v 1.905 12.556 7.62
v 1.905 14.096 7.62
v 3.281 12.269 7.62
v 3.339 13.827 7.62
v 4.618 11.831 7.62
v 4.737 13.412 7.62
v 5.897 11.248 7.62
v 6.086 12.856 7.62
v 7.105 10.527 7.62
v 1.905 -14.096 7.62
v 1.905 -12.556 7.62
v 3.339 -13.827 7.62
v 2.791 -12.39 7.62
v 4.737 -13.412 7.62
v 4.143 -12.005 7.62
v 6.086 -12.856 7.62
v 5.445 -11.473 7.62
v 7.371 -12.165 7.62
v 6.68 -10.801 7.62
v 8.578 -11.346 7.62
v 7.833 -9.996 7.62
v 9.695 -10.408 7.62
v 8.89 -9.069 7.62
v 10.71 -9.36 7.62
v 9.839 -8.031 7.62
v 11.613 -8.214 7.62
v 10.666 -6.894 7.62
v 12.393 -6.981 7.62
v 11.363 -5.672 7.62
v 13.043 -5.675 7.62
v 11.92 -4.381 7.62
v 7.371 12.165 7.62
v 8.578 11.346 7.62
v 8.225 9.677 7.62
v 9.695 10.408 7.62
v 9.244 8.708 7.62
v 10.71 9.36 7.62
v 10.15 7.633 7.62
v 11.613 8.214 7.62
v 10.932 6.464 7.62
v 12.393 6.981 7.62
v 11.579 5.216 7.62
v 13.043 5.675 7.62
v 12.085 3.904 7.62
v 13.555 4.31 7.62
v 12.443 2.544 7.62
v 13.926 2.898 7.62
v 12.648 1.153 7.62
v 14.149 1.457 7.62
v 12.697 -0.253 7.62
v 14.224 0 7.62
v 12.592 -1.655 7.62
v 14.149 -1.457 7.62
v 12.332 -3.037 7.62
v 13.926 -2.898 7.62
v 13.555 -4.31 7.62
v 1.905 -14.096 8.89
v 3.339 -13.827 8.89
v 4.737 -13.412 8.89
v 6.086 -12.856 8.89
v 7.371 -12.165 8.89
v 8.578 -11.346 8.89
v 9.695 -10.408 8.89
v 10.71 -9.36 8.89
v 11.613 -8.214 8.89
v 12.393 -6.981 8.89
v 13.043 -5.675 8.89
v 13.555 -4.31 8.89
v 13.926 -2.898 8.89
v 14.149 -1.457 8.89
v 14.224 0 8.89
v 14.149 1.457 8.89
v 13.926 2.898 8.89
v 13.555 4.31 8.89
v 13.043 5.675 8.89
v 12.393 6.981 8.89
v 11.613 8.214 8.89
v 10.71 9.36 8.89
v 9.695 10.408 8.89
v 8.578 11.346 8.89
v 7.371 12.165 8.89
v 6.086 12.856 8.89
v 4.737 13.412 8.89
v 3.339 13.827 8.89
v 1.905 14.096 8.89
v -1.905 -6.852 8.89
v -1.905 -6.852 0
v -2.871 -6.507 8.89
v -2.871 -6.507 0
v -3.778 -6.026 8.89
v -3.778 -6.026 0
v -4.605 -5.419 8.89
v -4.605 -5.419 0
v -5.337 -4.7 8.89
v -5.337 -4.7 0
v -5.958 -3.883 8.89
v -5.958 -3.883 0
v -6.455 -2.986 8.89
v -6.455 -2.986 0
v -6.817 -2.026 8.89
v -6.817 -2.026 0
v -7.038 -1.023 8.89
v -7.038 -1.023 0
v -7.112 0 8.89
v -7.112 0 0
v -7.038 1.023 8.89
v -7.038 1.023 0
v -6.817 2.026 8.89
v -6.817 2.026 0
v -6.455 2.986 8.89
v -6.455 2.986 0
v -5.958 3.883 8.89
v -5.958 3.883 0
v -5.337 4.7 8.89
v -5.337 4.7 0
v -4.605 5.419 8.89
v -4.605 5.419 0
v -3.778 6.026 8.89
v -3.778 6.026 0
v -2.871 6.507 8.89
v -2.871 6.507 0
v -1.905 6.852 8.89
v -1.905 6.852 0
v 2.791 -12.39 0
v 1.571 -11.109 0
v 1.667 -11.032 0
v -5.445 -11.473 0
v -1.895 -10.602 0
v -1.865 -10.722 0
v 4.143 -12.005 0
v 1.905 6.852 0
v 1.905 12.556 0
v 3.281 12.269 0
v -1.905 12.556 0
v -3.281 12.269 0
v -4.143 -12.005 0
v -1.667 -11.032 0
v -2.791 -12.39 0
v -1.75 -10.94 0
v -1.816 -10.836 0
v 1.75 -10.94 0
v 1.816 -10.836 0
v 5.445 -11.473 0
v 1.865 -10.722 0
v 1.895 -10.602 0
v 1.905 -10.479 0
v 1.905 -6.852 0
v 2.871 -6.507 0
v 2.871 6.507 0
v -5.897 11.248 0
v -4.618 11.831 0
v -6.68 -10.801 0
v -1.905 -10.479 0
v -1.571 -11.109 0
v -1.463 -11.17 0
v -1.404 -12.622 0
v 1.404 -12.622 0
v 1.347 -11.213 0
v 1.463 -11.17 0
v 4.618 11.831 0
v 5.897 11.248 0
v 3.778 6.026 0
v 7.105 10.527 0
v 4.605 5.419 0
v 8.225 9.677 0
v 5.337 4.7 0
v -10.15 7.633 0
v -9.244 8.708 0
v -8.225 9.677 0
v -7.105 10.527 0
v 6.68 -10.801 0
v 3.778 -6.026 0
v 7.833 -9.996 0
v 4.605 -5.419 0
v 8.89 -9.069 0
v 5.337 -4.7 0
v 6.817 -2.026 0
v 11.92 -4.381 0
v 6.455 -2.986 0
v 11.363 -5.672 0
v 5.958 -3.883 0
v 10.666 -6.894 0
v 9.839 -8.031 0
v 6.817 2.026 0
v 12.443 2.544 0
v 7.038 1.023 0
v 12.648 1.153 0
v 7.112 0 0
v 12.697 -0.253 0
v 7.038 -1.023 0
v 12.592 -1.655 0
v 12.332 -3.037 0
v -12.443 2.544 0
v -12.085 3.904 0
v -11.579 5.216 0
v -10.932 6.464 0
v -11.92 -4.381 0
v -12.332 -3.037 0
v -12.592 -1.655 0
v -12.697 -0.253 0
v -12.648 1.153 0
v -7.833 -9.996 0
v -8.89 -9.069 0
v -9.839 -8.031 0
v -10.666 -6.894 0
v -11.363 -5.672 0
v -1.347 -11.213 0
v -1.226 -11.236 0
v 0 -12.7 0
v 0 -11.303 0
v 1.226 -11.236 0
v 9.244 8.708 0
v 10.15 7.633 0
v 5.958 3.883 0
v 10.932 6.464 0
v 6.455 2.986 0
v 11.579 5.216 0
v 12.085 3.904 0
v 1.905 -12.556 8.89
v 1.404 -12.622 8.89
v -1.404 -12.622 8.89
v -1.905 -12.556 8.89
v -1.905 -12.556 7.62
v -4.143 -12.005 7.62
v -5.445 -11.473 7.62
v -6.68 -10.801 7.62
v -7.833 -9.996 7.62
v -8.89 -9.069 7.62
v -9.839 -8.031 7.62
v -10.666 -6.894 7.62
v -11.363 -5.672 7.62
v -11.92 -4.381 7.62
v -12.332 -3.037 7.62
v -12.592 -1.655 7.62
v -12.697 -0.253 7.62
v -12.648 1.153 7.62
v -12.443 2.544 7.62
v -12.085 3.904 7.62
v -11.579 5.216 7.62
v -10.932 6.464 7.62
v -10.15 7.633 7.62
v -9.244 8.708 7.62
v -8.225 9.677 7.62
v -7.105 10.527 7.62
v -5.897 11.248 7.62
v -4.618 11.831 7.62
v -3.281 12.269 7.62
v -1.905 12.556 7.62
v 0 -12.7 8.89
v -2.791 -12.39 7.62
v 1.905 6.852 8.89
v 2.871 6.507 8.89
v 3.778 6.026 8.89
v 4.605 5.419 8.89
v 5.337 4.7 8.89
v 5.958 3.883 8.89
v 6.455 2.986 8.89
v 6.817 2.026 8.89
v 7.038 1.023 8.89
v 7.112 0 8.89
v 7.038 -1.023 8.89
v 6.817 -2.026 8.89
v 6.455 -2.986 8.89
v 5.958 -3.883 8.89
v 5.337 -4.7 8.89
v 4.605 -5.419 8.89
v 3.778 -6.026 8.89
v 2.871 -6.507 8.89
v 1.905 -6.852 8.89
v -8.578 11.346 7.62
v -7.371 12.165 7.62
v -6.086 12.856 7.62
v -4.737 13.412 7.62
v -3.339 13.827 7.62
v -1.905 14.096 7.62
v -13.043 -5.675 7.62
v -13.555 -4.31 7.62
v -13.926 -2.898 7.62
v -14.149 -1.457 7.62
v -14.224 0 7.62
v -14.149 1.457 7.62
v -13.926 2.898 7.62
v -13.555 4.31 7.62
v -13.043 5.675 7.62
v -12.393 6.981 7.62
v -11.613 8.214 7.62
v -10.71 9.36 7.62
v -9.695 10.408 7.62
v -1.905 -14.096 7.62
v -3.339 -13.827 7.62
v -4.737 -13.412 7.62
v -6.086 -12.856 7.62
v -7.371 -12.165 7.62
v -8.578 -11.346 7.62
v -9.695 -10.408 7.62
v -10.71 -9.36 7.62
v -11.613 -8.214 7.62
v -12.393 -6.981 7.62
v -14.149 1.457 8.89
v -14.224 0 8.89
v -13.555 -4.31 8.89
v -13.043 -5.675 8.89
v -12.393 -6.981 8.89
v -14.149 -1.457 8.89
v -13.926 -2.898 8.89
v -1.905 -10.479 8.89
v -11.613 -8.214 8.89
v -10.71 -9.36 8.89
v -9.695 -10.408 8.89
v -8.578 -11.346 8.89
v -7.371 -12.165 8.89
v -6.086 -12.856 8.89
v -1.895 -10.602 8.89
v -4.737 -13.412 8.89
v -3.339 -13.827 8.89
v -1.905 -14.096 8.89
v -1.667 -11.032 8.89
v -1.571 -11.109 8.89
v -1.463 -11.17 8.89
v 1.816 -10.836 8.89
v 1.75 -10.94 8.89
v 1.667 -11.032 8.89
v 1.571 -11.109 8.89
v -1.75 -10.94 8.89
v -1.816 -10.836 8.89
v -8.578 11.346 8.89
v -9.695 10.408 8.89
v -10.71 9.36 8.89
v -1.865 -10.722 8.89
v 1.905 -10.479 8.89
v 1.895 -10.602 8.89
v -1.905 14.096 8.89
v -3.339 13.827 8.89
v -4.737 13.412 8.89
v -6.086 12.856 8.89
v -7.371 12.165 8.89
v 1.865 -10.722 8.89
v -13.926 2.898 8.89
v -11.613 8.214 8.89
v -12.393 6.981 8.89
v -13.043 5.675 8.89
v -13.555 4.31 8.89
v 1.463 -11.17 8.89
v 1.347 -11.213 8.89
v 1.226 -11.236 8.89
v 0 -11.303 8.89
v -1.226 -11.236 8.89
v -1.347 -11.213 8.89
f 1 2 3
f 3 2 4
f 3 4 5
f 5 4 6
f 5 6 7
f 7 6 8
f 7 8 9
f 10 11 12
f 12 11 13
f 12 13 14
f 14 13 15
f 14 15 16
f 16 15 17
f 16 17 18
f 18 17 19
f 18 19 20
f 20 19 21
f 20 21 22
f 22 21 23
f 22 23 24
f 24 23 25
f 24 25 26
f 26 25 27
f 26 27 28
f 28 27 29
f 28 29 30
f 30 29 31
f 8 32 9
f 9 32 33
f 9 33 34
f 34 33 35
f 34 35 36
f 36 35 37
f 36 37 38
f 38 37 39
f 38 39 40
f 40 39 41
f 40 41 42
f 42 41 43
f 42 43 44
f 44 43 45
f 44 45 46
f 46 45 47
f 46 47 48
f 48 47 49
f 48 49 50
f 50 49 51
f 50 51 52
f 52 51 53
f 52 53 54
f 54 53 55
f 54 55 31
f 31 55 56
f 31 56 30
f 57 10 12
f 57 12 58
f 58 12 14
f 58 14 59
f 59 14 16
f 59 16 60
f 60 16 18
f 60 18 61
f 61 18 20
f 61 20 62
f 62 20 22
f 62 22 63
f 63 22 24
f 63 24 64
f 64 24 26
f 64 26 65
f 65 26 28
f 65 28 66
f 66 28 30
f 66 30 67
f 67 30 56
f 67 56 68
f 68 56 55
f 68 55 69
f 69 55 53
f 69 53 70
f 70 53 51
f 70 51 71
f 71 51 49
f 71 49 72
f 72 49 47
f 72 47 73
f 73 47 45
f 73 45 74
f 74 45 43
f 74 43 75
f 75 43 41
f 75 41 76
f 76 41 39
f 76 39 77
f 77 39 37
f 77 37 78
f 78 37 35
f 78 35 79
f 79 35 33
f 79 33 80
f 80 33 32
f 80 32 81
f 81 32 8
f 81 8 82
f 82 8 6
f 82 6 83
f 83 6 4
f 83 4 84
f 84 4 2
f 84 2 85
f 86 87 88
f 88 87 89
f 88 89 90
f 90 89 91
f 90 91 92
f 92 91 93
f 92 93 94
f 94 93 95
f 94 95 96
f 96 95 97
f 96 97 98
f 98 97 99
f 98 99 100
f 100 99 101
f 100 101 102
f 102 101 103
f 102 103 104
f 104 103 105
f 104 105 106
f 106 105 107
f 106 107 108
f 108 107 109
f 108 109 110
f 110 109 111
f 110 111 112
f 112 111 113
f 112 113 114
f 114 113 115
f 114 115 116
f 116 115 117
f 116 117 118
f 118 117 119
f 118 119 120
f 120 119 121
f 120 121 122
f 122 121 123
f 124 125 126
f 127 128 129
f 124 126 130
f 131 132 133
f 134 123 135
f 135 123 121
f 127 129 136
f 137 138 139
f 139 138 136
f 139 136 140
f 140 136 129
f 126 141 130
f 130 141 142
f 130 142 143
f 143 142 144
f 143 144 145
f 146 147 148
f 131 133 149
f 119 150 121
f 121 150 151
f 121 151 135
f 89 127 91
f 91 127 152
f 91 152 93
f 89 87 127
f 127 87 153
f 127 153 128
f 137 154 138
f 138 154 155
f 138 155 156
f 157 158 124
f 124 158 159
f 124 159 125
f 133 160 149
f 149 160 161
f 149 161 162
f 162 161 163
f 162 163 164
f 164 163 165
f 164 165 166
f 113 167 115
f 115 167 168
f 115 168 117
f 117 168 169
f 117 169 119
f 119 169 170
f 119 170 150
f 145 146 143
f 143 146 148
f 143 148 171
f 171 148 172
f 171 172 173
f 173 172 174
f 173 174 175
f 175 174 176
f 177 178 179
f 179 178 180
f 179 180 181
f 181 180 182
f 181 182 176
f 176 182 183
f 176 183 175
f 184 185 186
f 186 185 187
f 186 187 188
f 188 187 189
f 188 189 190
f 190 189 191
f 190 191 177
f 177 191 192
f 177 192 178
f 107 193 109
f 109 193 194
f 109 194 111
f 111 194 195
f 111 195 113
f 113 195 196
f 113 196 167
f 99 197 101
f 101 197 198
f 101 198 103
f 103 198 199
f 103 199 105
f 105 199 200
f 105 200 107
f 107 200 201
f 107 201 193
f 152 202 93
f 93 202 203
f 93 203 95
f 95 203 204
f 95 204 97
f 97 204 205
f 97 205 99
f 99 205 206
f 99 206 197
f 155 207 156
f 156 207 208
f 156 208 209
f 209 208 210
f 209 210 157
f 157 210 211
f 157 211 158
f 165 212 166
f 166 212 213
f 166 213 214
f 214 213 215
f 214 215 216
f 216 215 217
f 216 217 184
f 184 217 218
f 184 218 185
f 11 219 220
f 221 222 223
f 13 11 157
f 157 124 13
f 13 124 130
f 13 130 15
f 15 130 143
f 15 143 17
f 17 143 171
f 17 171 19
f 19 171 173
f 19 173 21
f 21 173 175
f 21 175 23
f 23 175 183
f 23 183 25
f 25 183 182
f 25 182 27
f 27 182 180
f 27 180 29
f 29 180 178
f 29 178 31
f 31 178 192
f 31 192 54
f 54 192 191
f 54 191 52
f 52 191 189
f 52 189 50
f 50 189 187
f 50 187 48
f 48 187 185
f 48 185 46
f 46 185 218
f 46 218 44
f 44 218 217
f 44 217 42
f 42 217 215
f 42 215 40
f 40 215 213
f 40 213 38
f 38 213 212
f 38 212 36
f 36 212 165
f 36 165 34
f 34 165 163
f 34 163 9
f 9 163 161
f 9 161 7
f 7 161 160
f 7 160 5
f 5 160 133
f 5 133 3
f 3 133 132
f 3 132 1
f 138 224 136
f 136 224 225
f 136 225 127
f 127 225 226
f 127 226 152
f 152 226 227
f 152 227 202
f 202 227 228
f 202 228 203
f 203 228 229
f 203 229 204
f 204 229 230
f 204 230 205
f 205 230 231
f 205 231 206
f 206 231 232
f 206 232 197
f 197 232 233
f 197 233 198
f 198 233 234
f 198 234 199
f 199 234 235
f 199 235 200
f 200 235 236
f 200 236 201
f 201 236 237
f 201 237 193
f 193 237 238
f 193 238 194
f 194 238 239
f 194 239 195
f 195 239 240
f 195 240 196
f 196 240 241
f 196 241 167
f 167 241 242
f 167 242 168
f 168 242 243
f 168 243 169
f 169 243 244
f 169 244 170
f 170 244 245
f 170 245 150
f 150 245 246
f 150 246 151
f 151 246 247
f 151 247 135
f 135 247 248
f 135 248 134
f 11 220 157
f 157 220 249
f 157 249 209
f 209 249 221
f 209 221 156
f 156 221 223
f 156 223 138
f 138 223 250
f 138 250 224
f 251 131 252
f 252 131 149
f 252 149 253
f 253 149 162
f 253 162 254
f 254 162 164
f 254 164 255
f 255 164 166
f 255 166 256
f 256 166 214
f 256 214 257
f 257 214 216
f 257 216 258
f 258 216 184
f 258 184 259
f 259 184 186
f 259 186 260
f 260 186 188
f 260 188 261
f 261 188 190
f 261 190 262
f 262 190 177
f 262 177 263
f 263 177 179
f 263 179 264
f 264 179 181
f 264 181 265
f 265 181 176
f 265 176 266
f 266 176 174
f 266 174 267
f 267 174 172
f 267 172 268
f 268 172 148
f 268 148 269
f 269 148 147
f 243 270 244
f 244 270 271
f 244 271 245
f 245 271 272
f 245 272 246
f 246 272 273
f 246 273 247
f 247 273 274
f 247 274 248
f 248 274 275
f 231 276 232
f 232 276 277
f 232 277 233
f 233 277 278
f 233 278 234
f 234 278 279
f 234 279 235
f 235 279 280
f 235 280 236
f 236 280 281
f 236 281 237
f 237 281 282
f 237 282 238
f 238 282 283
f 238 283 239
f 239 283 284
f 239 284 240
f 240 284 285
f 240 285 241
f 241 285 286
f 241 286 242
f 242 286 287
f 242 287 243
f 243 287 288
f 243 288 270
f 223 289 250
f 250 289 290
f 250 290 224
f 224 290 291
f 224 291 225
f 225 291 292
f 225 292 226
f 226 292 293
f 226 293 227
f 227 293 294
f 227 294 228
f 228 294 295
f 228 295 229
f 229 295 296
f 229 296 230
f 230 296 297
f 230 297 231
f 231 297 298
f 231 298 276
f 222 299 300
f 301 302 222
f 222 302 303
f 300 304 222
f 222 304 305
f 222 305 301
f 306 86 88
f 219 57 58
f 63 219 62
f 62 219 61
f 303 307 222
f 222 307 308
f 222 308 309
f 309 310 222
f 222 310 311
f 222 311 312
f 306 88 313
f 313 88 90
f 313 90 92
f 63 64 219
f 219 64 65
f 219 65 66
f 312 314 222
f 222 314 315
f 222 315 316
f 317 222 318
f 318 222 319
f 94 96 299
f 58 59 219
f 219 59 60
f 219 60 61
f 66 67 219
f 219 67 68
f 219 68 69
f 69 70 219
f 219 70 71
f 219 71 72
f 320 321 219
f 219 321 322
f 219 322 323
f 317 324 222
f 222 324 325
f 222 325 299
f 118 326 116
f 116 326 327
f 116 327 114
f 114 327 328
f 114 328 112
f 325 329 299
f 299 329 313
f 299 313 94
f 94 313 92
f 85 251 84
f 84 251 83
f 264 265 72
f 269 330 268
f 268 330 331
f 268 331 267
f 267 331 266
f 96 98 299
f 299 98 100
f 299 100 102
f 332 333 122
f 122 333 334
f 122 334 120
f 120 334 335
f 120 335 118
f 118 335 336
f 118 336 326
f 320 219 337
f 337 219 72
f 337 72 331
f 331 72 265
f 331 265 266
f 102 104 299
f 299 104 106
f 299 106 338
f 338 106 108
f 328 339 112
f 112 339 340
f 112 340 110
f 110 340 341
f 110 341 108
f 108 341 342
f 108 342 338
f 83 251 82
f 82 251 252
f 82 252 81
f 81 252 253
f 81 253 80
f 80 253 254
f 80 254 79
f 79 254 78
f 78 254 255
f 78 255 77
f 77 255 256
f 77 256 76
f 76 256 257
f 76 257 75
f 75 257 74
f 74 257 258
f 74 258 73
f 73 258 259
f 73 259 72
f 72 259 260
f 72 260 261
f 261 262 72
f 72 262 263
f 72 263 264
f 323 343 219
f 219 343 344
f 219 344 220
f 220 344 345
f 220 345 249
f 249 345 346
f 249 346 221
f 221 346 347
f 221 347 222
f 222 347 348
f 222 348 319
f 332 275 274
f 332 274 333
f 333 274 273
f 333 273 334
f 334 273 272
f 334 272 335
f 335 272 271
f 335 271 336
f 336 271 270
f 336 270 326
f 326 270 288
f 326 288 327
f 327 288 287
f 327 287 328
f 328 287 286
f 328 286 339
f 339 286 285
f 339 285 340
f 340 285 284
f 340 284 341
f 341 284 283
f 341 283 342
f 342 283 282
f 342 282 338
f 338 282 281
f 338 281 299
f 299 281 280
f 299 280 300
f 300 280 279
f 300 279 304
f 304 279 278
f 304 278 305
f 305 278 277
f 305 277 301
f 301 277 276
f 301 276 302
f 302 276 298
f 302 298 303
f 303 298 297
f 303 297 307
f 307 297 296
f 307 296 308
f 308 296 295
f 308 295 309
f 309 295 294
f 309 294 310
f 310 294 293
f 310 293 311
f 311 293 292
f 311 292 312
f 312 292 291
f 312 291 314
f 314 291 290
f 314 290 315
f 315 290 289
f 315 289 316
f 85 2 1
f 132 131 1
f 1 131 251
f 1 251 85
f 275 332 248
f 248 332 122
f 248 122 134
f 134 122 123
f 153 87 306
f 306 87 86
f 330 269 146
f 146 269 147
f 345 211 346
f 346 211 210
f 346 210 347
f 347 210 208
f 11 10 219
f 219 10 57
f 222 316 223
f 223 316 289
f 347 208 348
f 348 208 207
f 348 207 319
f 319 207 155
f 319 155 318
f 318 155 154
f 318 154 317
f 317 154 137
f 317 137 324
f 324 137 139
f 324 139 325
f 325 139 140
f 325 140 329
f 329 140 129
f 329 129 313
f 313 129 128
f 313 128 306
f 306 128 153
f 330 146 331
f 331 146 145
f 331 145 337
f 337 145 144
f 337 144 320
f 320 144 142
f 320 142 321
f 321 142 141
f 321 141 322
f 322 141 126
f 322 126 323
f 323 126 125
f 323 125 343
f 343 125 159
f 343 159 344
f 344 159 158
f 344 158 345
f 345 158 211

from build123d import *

# Parameters (mm, degrees)
SKETCH1_R           = 12.7
SKETCH1_R_2         = 7.112
BOSS_EXTRUDE1_DEPTH = 7.62
SKETCH2_R           = 14.224
SKETCH2_R_2         = 7.112
BOSS_EXTRUDE2_DEPTH = 1.27
CUT_EXTRUDE1_DEPTH  = 9.89
CUT_EXTRUDE2_DEPTH  = 2.27
FILLET1_R           = 0.762


with BuildPart() as part:
    # Sketch1 → Boss-Extrude1 (new body)
    with BuildSketch(Plane.XY):
        Circle(SKETCH1_R)
        Circle(SKETCH1_R_2, mode=Mode.SUBTRACT)
    extrude(amount=BOSS_EXTRUDE1_DEPTH)

    # Sketch2 → Boss-Extrude2 (add)
    with BuildSketch(Plane.XY.offset(7.62)):
        Circle(SKETCH2_R)
        Circle(SKETCH2_R_2, mode=Mode.SUBTRACT)
    extrude(amount=BOSS_EXTRUDE2_DEPTH)

    # Sketch3 → Cut-Extrude1 (cut, through all)
    with BuildSketch(Plane(origin=(0, 0, 0), x_dir=(-1, 0, 0), z_dir=(0, 0, -1))):
        with BuildLine():
            Line((-1.905, 14.224), (1.905, 14.224))
            Line((1.905, 14.224), (1.905, -11.141309797))
            ThreePointArc((1.905, -11.141309797), (0, -11.303), (-1.905, -11.141309797))
            Line((-1.905, -11.141309797), (-1.905, 14.224))
        make_face()
    extrude(amount=-CUT_EXTRUDE1_DEPTH, mode=Mode.SUBTRACT)

    # Sketch4 → Cut-Extrude2 (cut, through all)
    with BuildSketch(Plane(origin=(0, 0, 7.62), x_dir=(-1, 0, 0), z_dir=(0, 0, -1))):
        with BuildLine():
            Line((-1.905, -14.224), (-1.905, -12.556312158))
            ThreePointArc((-1.905, -12.556312158), (0, -12.7), (1.905, -12.556312158))
            Line((1.905, -12.556312158), (1.905, -14.224))
            Line((1.905, -14.224), (-1.905, -14.224))
        make_face()
    extrude(amount=-CUT_EXTRUDE2_DEPTH, mode=Mode.SUBTRACT)

    # Fillet1
    fillet1_edges = [part.edges().sort_by_distance(p)[0] for p in [
        (1.905, -11.141309797, 4.445),
        (-1.905, -11.141309797, 4.445),
    ]]
    fillet(fillet1_edges, radius=FILLET1_R)


solid = part.part
